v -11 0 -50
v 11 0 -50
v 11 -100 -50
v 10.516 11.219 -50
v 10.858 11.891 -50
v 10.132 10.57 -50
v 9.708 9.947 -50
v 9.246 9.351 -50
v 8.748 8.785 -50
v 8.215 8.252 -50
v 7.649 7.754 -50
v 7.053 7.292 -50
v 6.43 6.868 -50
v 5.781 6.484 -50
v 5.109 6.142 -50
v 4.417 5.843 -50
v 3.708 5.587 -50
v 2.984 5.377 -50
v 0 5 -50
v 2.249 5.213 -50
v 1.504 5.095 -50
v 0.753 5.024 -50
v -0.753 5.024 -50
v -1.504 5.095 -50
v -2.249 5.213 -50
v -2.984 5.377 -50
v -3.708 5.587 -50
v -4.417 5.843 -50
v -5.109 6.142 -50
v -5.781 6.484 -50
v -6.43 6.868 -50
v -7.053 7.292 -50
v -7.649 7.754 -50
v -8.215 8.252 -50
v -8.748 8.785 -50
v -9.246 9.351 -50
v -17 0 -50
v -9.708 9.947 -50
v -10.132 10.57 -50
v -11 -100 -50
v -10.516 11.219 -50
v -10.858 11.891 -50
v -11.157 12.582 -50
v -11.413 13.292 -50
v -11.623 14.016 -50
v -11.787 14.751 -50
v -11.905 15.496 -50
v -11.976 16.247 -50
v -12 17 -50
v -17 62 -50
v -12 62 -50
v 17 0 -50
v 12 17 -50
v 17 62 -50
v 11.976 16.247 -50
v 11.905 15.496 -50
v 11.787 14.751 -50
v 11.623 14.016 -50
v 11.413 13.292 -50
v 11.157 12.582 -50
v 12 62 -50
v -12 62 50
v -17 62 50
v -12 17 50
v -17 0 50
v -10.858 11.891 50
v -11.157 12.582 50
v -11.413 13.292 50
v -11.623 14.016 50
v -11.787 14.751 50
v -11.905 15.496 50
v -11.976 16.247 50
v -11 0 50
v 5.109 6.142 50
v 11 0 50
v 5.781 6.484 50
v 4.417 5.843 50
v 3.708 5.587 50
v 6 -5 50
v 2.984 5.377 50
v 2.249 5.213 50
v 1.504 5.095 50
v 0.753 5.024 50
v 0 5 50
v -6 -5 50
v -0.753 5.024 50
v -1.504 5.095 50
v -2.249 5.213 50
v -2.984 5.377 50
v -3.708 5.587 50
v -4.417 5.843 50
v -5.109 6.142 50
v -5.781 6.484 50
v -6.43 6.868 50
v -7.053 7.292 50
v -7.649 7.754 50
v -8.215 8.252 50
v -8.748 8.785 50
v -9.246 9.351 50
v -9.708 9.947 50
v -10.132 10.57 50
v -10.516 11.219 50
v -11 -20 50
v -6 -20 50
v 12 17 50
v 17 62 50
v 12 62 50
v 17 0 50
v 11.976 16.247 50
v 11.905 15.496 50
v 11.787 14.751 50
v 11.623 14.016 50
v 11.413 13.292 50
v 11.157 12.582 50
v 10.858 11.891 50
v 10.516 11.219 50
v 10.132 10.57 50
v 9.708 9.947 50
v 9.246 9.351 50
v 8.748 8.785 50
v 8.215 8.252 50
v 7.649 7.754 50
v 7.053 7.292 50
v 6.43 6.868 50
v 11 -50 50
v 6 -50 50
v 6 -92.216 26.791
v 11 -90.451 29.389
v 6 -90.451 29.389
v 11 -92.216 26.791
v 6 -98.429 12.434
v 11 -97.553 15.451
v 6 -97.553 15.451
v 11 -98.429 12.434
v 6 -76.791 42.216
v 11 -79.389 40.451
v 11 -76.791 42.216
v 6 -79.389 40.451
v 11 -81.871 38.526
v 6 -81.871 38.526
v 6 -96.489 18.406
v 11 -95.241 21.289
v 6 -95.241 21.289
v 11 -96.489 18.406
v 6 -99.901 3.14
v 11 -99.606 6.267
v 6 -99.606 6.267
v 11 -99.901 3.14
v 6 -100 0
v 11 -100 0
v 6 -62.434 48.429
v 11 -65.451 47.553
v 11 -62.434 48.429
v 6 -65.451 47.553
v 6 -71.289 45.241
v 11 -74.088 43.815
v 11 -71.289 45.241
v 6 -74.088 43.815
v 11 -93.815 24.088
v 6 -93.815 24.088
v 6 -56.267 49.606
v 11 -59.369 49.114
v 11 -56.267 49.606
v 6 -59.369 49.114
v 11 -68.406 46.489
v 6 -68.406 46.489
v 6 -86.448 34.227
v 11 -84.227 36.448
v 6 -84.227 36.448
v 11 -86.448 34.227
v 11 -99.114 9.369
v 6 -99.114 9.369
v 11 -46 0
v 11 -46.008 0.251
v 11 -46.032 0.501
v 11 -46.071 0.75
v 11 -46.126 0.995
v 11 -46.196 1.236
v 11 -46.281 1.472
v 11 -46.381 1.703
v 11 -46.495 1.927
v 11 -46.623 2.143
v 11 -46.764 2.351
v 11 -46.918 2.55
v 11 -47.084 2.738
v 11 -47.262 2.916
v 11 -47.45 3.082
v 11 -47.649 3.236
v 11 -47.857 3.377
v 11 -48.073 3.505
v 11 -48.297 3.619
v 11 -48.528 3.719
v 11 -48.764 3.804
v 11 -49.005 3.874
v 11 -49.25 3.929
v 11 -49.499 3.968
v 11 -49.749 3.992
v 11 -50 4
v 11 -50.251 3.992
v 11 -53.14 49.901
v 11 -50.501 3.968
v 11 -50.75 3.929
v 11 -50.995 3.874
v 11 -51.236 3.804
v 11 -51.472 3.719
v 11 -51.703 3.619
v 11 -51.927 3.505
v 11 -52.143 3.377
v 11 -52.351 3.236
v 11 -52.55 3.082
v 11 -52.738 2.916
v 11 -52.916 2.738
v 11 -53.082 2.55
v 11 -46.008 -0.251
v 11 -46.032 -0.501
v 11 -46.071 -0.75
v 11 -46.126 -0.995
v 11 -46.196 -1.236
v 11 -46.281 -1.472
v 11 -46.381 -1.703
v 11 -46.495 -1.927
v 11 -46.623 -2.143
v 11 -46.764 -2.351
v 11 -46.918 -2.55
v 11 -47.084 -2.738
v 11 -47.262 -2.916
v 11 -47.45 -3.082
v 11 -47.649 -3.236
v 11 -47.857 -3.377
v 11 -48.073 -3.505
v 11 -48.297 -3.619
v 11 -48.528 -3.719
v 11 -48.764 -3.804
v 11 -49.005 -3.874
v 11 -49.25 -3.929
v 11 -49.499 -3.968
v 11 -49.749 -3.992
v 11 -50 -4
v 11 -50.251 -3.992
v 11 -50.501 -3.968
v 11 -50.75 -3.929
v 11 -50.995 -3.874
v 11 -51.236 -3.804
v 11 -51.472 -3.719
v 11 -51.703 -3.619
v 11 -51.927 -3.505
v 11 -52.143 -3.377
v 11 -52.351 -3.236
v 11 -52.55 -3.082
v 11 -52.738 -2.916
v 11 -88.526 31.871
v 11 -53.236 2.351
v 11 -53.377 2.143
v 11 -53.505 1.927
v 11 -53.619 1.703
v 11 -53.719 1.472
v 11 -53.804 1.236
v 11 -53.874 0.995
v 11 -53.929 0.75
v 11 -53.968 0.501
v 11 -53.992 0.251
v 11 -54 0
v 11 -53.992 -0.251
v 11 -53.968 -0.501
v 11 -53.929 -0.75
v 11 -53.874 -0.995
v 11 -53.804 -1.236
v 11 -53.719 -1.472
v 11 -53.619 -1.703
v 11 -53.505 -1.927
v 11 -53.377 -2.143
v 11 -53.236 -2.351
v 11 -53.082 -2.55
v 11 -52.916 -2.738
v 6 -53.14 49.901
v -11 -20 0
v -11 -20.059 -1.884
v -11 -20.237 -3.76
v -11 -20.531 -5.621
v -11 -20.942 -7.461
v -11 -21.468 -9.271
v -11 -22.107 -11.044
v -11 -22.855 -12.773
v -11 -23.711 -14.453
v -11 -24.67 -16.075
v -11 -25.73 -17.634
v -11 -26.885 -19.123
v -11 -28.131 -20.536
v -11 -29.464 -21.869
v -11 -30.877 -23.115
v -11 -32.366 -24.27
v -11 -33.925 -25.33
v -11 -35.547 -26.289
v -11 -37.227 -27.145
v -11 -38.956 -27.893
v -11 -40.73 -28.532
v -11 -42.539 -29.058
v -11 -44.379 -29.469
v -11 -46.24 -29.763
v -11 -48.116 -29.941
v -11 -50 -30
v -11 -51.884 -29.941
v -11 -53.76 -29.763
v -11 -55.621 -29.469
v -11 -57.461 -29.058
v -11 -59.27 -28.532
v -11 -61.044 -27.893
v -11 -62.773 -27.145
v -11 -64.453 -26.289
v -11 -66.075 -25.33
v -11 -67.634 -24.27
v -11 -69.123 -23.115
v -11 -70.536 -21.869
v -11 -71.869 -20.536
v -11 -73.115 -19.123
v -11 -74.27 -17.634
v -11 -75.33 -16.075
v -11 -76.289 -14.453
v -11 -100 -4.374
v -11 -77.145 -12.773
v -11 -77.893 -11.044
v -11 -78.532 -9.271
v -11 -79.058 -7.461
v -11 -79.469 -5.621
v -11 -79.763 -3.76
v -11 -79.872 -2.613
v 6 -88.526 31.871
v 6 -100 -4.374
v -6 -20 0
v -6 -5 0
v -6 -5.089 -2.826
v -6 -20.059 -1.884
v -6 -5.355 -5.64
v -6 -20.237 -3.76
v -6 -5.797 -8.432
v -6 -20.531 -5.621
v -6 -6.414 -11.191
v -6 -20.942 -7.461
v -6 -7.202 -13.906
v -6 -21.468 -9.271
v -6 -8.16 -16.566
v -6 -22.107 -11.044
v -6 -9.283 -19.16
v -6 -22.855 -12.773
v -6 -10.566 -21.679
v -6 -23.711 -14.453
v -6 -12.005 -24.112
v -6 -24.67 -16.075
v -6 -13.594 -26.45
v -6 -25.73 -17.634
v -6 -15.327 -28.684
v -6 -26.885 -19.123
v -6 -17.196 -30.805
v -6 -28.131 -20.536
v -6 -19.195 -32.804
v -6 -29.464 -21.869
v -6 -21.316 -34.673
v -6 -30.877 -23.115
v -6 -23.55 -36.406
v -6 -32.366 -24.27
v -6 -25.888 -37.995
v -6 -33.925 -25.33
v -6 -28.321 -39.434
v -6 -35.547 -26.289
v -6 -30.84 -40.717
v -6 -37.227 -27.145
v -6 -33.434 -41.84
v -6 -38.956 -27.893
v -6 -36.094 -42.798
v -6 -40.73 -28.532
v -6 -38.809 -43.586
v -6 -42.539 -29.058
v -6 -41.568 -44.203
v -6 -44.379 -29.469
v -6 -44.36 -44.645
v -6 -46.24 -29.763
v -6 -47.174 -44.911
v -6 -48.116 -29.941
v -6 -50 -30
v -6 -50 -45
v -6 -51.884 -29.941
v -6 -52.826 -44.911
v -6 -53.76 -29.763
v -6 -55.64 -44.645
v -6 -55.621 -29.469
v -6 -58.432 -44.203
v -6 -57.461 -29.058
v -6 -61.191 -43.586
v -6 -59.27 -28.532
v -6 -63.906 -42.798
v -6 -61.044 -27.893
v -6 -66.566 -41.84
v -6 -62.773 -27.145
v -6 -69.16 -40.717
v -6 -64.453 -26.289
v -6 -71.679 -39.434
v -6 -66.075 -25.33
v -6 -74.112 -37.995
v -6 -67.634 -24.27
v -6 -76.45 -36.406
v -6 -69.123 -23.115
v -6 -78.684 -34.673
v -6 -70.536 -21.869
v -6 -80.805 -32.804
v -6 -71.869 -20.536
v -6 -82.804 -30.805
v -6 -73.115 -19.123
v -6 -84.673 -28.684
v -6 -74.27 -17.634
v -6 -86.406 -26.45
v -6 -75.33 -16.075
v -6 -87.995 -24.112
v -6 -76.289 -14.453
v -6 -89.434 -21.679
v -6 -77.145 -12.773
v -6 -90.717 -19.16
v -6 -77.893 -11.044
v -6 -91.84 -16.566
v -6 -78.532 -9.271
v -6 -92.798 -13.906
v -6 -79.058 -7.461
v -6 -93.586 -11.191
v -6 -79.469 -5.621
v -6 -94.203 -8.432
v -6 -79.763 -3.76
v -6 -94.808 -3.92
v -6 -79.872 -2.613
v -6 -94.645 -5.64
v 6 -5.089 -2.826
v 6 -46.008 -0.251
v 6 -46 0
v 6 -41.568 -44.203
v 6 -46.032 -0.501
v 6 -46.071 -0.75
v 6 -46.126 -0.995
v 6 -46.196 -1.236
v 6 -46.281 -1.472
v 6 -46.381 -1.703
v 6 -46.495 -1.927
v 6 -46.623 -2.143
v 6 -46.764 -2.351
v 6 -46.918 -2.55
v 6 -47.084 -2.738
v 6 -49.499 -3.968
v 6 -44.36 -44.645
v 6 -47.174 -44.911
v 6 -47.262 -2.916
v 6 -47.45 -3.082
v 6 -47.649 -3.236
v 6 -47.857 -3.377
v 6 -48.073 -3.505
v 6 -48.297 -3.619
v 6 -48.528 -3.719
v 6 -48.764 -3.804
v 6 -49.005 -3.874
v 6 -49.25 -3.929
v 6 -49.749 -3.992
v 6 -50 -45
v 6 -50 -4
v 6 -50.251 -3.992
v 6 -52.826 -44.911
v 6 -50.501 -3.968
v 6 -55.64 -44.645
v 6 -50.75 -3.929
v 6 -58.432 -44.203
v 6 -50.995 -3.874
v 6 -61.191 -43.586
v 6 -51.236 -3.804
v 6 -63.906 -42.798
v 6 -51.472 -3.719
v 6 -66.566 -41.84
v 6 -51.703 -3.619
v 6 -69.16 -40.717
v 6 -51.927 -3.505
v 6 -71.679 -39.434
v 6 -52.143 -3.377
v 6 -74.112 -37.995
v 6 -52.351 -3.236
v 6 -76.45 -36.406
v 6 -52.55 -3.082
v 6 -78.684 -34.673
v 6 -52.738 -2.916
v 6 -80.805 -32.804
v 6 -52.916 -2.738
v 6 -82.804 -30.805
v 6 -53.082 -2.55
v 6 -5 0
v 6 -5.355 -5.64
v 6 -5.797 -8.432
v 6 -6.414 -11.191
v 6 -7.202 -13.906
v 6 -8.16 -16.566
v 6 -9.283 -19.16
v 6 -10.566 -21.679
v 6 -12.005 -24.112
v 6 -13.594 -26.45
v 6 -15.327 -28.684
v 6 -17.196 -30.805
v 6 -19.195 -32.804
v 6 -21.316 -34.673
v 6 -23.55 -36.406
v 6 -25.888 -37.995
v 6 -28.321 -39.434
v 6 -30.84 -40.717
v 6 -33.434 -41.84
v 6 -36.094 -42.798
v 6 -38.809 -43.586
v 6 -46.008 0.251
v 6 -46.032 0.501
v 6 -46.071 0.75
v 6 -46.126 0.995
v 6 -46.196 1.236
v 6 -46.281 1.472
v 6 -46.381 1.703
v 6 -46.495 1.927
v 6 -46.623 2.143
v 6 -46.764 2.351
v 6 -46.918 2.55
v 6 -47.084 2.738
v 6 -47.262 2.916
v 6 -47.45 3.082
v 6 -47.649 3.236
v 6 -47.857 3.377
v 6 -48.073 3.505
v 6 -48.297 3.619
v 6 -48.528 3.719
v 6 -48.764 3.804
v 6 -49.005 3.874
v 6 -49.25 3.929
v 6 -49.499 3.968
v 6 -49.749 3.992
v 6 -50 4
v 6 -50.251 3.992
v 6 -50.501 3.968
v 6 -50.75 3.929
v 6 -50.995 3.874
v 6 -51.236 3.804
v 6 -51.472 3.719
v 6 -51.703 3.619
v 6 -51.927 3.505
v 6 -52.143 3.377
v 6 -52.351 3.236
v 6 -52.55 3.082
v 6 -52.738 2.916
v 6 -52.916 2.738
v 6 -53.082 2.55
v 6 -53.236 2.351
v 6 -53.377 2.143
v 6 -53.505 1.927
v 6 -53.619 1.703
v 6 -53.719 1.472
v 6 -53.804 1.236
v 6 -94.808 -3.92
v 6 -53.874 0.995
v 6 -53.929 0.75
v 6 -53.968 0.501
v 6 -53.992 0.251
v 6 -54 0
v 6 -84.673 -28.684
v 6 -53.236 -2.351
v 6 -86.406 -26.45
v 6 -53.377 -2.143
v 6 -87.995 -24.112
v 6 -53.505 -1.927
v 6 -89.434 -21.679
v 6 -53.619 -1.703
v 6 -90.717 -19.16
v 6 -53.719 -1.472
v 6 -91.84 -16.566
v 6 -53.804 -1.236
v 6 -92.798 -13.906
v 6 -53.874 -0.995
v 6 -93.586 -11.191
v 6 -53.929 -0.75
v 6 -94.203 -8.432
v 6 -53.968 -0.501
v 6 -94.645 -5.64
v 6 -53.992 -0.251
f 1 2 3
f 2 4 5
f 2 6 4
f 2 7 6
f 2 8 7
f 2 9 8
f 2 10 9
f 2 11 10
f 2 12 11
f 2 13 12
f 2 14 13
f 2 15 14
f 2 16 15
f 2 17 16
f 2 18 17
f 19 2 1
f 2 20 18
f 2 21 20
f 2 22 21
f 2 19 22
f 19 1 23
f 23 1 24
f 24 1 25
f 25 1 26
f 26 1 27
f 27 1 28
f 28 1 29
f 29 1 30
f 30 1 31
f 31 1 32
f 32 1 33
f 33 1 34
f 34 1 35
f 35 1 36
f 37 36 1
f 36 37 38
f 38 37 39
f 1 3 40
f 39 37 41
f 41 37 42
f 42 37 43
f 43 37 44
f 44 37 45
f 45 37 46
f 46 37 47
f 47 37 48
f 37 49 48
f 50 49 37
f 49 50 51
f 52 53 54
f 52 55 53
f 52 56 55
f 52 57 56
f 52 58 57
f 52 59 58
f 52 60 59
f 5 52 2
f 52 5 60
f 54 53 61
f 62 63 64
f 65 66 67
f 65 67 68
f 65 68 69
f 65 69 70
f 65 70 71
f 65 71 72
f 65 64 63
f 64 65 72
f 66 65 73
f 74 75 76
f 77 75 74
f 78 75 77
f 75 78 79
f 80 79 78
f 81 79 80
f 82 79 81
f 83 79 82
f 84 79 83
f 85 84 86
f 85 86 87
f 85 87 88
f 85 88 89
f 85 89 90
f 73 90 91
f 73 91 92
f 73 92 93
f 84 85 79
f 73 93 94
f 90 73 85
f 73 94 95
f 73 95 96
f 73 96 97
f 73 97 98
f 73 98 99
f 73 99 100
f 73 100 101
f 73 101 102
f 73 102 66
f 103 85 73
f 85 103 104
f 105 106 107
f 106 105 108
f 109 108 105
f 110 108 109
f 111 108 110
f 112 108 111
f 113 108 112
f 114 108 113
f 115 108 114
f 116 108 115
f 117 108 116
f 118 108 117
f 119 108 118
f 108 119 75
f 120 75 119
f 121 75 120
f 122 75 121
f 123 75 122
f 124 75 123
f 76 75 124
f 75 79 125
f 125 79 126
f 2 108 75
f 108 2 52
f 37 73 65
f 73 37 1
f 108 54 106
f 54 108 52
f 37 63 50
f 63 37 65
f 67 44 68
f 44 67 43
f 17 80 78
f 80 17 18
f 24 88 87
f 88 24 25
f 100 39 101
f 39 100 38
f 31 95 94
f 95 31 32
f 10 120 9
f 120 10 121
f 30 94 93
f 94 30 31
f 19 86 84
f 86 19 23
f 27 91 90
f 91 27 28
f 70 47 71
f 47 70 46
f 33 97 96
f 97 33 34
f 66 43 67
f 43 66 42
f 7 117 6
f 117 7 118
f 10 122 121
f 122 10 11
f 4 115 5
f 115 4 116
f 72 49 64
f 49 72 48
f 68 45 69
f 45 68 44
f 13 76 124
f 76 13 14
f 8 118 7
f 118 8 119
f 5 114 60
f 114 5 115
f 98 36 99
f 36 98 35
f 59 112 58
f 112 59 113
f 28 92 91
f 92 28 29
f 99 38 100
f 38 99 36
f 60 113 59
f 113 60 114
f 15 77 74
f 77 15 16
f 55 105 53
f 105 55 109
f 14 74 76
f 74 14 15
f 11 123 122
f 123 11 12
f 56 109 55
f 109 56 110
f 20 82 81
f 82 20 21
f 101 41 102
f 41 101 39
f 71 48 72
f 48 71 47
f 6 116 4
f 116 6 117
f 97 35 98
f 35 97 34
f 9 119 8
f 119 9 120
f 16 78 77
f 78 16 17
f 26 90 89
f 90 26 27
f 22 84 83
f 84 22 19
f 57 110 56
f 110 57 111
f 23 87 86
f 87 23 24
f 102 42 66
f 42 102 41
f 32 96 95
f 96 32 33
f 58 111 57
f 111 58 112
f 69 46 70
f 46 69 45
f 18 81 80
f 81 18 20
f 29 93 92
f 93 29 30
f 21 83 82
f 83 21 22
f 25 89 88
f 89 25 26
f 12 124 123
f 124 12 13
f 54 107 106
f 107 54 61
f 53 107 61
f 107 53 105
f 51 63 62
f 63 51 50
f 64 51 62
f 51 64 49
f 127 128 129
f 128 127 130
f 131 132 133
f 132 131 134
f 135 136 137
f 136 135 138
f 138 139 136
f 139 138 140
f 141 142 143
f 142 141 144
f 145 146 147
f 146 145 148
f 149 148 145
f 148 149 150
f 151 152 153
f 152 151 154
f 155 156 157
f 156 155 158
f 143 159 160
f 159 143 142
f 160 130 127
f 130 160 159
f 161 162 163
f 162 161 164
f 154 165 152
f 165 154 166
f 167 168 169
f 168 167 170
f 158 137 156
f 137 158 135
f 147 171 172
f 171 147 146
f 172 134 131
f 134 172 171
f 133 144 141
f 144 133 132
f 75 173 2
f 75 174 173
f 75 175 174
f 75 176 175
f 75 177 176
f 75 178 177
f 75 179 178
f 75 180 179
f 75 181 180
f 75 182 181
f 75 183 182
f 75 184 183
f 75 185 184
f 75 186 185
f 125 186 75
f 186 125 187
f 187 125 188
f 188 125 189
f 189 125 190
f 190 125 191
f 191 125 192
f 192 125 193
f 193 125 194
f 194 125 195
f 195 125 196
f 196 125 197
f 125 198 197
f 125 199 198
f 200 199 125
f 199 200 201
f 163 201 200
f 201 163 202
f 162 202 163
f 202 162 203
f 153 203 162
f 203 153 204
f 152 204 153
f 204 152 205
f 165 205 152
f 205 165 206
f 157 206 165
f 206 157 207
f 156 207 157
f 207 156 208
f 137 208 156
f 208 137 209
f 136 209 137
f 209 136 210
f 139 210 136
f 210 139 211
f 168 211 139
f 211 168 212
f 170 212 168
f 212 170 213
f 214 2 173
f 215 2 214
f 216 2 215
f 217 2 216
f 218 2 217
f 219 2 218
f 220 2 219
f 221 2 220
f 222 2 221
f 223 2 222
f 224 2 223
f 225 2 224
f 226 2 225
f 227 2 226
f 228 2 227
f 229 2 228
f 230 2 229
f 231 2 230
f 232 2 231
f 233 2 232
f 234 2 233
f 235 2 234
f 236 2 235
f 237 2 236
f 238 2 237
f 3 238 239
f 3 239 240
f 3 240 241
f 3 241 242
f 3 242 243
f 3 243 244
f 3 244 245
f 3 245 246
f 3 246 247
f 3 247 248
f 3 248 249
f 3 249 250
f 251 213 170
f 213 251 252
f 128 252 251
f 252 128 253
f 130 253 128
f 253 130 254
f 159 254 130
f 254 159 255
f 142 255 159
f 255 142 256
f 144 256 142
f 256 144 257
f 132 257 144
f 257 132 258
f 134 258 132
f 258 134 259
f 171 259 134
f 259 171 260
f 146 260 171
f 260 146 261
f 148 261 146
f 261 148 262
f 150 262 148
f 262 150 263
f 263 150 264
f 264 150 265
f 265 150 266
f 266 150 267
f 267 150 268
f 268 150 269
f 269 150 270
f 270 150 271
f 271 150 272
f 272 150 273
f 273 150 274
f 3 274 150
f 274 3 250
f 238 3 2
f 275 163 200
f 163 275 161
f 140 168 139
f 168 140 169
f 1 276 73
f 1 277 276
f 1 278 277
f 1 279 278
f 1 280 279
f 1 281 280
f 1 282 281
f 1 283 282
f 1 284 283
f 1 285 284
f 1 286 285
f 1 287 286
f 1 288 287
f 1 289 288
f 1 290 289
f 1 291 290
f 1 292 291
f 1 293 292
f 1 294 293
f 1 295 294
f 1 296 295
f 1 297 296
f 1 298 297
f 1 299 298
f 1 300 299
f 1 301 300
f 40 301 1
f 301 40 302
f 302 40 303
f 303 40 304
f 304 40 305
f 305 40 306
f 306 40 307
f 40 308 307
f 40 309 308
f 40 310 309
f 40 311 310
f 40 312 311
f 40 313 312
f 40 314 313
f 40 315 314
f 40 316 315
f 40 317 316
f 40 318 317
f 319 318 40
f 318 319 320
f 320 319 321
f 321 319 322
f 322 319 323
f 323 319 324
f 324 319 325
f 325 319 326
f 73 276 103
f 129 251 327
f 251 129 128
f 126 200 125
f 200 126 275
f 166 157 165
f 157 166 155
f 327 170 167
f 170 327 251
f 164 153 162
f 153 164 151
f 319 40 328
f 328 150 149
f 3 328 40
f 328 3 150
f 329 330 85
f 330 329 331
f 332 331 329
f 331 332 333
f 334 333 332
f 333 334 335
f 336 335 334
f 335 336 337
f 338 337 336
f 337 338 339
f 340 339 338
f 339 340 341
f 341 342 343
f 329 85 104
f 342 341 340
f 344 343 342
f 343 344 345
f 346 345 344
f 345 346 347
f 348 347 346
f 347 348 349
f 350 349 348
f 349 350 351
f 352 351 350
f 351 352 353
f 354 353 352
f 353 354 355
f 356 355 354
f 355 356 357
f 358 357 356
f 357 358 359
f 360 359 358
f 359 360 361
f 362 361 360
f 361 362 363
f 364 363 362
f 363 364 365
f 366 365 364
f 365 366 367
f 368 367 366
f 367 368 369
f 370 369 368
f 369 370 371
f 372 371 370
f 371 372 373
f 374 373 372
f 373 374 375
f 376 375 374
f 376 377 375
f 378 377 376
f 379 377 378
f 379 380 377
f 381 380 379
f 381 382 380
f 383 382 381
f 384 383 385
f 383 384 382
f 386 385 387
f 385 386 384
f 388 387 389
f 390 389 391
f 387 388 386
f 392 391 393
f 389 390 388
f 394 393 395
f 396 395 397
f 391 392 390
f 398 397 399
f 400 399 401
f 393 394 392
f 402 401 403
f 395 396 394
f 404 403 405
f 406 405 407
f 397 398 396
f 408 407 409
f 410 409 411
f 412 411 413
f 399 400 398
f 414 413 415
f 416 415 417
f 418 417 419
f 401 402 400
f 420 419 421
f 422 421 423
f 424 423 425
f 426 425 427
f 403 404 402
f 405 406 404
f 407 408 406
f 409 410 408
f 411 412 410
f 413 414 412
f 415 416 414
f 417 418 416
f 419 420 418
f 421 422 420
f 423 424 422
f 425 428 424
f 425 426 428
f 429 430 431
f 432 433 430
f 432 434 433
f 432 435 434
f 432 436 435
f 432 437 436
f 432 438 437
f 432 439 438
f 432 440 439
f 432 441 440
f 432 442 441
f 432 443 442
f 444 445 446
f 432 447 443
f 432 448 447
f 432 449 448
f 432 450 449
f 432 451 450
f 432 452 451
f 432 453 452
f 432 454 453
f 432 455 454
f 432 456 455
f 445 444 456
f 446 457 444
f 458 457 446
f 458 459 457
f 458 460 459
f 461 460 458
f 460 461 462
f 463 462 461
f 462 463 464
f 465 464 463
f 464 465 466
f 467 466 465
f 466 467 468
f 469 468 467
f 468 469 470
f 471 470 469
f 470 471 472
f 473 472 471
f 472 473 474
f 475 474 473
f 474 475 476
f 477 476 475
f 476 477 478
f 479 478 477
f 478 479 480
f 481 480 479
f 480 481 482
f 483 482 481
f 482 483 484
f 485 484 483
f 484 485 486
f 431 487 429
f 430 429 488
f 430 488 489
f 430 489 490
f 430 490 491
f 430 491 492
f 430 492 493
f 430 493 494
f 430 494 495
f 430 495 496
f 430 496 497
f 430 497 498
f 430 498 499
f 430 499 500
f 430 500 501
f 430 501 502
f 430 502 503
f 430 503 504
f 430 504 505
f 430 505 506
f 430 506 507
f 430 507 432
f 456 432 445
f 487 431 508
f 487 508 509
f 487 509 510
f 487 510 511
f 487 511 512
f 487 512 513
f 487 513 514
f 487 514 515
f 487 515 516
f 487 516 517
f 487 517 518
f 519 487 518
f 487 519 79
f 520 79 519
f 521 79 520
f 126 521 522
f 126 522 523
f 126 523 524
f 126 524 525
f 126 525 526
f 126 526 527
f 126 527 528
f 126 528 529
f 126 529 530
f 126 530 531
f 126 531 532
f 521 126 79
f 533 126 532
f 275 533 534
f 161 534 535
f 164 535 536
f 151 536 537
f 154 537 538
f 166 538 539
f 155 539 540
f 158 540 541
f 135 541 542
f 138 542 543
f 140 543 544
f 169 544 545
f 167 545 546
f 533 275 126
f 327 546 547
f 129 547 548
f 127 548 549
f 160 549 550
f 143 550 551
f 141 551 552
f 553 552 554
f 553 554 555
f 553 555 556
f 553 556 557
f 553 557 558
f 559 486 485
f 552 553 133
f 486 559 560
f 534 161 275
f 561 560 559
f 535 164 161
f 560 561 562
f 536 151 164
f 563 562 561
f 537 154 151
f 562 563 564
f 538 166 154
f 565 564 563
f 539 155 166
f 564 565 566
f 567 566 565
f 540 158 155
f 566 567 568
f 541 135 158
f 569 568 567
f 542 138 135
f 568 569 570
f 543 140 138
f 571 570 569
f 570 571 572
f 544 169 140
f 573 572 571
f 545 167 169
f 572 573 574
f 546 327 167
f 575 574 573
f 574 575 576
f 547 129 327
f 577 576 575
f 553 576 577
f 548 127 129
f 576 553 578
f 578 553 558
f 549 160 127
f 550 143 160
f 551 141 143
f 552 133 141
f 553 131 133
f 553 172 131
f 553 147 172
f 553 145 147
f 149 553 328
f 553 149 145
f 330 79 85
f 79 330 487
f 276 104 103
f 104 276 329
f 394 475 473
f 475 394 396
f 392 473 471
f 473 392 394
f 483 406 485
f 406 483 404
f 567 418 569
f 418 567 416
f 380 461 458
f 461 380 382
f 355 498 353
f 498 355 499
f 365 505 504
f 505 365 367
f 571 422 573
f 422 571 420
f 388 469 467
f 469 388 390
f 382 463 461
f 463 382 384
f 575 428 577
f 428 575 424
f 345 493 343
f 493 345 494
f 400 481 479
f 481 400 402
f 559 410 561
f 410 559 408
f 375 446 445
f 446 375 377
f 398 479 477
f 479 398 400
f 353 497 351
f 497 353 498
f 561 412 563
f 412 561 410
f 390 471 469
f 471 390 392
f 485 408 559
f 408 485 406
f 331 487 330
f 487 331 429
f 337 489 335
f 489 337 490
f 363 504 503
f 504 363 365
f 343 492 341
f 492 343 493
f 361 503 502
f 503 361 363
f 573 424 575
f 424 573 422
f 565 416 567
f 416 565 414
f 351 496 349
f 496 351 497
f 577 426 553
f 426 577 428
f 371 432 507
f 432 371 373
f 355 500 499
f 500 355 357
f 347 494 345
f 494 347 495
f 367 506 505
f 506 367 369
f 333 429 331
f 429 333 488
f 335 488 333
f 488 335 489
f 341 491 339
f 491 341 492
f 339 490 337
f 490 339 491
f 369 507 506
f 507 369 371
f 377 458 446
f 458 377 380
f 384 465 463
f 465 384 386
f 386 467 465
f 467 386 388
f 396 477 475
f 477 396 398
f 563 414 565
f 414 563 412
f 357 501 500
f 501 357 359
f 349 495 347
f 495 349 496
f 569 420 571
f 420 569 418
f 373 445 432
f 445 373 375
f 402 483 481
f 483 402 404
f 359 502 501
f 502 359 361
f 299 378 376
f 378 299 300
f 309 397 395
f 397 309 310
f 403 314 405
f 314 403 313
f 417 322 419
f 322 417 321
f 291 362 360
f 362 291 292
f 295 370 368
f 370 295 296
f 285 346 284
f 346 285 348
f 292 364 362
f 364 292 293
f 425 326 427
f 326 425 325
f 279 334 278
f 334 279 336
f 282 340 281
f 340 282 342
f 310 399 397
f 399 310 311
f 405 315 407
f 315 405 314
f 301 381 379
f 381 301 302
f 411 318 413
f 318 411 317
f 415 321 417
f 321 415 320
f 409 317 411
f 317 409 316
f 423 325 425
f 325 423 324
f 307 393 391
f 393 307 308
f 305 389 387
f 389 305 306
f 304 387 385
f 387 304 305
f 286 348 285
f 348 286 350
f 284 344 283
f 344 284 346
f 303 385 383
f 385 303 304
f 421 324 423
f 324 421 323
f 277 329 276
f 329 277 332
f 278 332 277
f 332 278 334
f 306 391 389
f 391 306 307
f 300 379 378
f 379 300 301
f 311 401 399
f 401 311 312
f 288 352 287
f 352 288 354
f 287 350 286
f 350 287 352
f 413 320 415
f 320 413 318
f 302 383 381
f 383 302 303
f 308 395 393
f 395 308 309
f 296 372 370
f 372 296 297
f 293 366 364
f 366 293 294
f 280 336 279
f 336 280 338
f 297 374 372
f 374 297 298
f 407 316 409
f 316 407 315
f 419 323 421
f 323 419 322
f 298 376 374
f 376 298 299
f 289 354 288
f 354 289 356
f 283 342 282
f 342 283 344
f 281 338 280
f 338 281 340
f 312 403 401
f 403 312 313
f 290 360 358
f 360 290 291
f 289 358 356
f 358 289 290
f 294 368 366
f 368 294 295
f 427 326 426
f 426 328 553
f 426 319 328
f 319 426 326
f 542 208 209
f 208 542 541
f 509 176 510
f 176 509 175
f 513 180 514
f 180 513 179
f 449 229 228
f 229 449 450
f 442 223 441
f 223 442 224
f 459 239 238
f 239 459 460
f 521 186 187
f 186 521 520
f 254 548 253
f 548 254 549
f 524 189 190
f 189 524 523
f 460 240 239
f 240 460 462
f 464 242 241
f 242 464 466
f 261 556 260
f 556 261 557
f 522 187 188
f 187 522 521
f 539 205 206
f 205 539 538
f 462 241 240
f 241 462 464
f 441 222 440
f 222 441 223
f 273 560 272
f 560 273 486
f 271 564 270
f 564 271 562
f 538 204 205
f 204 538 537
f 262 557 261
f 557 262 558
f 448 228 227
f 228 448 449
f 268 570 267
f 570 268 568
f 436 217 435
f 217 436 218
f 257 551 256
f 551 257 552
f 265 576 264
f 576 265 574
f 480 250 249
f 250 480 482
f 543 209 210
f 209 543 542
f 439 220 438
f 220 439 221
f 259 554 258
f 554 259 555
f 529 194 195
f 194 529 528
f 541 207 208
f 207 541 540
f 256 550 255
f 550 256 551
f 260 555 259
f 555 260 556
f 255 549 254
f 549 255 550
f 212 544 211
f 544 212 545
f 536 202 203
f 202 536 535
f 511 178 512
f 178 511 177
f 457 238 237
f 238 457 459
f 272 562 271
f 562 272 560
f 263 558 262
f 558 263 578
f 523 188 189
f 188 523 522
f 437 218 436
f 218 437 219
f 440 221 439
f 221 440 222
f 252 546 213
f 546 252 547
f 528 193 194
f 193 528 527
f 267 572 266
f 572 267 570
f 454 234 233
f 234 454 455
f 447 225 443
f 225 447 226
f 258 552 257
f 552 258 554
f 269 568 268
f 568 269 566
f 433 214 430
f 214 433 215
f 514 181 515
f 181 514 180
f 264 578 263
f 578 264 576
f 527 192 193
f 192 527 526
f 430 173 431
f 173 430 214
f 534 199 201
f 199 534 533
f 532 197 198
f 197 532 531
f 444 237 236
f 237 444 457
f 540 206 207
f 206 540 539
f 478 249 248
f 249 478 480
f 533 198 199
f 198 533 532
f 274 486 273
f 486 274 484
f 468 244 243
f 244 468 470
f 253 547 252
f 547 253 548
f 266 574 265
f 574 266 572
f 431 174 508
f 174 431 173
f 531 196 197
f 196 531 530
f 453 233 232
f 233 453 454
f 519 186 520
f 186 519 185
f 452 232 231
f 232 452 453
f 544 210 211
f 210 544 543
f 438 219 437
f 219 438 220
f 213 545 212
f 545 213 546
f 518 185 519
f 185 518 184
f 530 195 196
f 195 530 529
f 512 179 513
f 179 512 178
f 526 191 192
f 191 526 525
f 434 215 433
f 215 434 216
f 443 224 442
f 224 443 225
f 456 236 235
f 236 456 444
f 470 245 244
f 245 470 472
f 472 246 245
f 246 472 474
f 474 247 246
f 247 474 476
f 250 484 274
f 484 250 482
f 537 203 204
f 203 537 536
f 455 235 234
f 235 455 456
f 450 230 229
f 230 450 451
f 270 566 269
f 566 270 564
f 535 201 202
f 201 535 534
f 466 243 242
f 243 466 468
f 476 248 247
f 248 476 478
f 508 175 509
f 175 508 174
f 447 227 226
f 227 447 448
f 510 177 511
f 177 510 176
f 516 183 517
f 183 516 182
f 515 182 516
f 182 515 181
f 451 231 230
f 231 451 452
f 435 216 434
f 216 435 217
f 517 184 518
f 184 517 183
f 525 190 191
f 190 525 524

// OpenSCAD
// 3 cm for diameter inside

// + 12 AND 12 !

// NANIT PART
NANIT_BASE_RADIUS = 45;
NANIT_BASE_HEIGHT = 12;
NANIT_BASE_INNER_INDENT = 15;
NANIT_BASE_PADDING = 5; // 4
NANIT_SCREW_HOLE_RADIUS = 4;
NANIT_DEGREE_OPEN_TOP = 5;

// BOTTOM PART
PLATE_LENGTH = 45;
INNER_RADIUS = 12;
PADDING = 5;
HEIGHT = 2 * (NANIT_BASE_RADIUS + NANIT_BASE_PADDING);// 16

module base_wheel_block() {
    cylinder(h = NANIT_BASE_HEIGHT + 2 * NANIT_BASE_PADDING, r1 = NANIT_BASE_RADIUS + NANIT_BASE_PADDING, r2 = NANIT_BASE_RADIUS + NANIT_BASE_PADDING, center = true, $fn = 100);
    translate([-(NANIT_BASE_RADIUS + NANIT_BASE_PADDING), -(NANIT_BASE_RADIUS + NANIT_BASE_PADDING), -(NANIT_BASE_HEIGHT + 2 * NANIT_BASE_PADDING) / 2])
    cube([NANIT_BASE_RADIUS + NANIT_BASE_PADDING, NANIT_BASE_RADIUS + NANIT_BASE_PADDING, NANIT_BASE_HEIGHT + 2 * NANIT_BASE_PADDING]);
    translate([0, -(NANIT_BASE_RADIUS + NANIT_BASE_PADDING), -(NANIT_BASE_HEIGHT + 2 * NANIT_BASE_PADDING) / 2])
    cube([NANIT_BASE_RADIUS + NANIT_BASE_PADDING, NANIT_BASE_RADIUS + NANIT_BASE_PADDING, NANIT_BASE_HEIGHT + 2 * NANIT_BASE_PADDING]);
}

module wheel() {
    difference() {
        base_wheel_block();
        cylinder(h = NANIT_BASE_HEIGHT, r1 = NANIT_BASE_RADIUS, r2 = NANIT_BASE_RADIUS, center = true, $fn = 100);
        cylinder(h = NANIT_BASE_HEIGHT + NANIT_BASE_PADDING, r1 = (NANIT_BASE_RADIUS - NANIT_BASE_INNER_INDENT), r2 = (NANIT_BASE_RADIUS - NANIT_BASE_INNER_INDENT), $fn = 100);
        translate([-(NANIT_BASE_RADIUS + NANIT_BASE_PADDING + 1), 0, -(NANIT_BASE_HEIGHT / 2)])
        cube([2 * (NANIT_BASE_RADIUS + NANIT_BASE_PADDING) + 2, NANIT_BASE_RADIUS + NANIT_BASE_PADDING + 2, NANIT_BASE_HEIGHT + NANIT_BASE_PADDING + 2]);
        rotate(a=-NANIT_DEGREE_OPEN_TOP, v=[0, 0, 1])
        translate([-(NANIT_BASE_RADIUS + NANIT_BASE_PADDING + 1), 0, -(NANIT_BASE_HEIGHT / 2)])
        cube([2 * (NANIT_BASE_RADIUS + NANIT_BASE_PADDING) + 2, NANIT_BASE_RADIUS + NANIT_BASE_PADDING + 2, NANIT_BASE_HEIGHT + NANIT_BASE_PADDING + 2]);
        /*translate([0, -(NANIT_BASE_RADIUS + NANIT_BASE_PADDING + 1), -(NANIT_BASE_HEIGHT / 2)])
        cube([NANIT_BASE_RADIUS + NANIT_BASE_PADDING + 2, 2 * (NANIT_BASE_RADIUS + NANIT_BASE_PADDING) + 2, NANIT_BASE_HEIGHT + NANIT_BASE_PADDING + 2]);*/
    }
}

module extension() {
    translate([-(NANIT_BASE_RADIUS + NANIT_BASE_PADDING), 0, -(NANIT_BASE_HEIGHT + 2 * NANIT_BASE_PADDING) / 2])
    difference() {
        cube([NANIT_BASE_RADIUS + NANIT_BASE_PADDING, NANIT_BASE_RADIUS + NANIT_BASE_PADDING, NANIT_BASE_HEIGHT + 2 * NANIT_BASE_PADDING]);
        translate([NANIT_BASE_PADDING, -1, NANIT_BASE_PADDING])
        cube([NANIT_BASE_RADIUS + NANIT_BASE_PADDING, NANIT_BASE_RADIUS + NANIT_BASE_PADDING + 2, NANIT_BASE_HEIGHT]);
        translate([NANIT_BASE_PADDING + NANIT_BASE_INNER_INDENT, -1, NANIT_BASE_PADDING])
        cube([NANIT_BASE_RADIUS + NANIT_BASE_PADDING, NANIT_BASE_RADIUS + NANIT_BASE_PADDING + 2, NANIT_BASE_HEIGHT + 2 * NANIT_BASE_PADDING]);
    }
}

module nanit_hold() {
    translate([0, 0, NANIT_BASE_RADIUS + NANIT_BASE_PADDING])
    rotate(a = -90, v = [0, 1, 0])
    difference() {
        union() {
            wheel();
            extension();
        }
        cylinder(h = NANIT_BASE_HEIGHT + 2 * NANIT_BASE_PADDING + 2, r1 = NANIT_SCREW_HOLE_RADIUS, r2 = NANIT_SCREW_HOLE_RADIUS, center = true, $fn = 100);
    }
}

module base_hold() {
    cylinder(h = HEIGHT, r1 = INNER_RADIUS + PADDING, r2 = INNER_RADIUS + PADDING, center = true, $fn = 100);
    translate([-(INNER_RADIUS + PADDING), -(INNER_RADIUS + PADDING), -(HEIGHT / 2)])
    cube([INNER_RADIUS + PADDING, 2 * (INNER_RADIUS + PADDING), HEIGHT]);
}

module plate() {
    cube([PLATE_LENGTH, PADDING, HEIGHT]);
}


module base_grab() {
    translate([0, 0, -(INNER_RADIUS + PADDING)])
    rotate(a = 90, v=[0, 1, 0])
    rotate(a=90, v=[1, 0, 0]) {
        difference() {
            base_hold();
            translate([0, 0, -2])
            cylinder(h = HEIGHT + 5, r1 = INNER_RADIUS, r2 = INNER_RADIUS, center = true, $fn = 100);
            translate([0, -20, -(HEIGHT / 2) - 2])
            cube([INNER_RADIUS + 5, 2 * INNER_RADIUS + 10, HEIGHT + 5]);
        }

        translate([0, INNER_RADIUS, -(HEIGHT / 2)])
        plate();

        translate([0, -INNER_RADIUS - PADDING, -(HEIGHT / 2)])
        plate();
    }
}


rotate(a=90, v=[1, 0, 0]) {
    nanit_hold();
    base_grab();
}
